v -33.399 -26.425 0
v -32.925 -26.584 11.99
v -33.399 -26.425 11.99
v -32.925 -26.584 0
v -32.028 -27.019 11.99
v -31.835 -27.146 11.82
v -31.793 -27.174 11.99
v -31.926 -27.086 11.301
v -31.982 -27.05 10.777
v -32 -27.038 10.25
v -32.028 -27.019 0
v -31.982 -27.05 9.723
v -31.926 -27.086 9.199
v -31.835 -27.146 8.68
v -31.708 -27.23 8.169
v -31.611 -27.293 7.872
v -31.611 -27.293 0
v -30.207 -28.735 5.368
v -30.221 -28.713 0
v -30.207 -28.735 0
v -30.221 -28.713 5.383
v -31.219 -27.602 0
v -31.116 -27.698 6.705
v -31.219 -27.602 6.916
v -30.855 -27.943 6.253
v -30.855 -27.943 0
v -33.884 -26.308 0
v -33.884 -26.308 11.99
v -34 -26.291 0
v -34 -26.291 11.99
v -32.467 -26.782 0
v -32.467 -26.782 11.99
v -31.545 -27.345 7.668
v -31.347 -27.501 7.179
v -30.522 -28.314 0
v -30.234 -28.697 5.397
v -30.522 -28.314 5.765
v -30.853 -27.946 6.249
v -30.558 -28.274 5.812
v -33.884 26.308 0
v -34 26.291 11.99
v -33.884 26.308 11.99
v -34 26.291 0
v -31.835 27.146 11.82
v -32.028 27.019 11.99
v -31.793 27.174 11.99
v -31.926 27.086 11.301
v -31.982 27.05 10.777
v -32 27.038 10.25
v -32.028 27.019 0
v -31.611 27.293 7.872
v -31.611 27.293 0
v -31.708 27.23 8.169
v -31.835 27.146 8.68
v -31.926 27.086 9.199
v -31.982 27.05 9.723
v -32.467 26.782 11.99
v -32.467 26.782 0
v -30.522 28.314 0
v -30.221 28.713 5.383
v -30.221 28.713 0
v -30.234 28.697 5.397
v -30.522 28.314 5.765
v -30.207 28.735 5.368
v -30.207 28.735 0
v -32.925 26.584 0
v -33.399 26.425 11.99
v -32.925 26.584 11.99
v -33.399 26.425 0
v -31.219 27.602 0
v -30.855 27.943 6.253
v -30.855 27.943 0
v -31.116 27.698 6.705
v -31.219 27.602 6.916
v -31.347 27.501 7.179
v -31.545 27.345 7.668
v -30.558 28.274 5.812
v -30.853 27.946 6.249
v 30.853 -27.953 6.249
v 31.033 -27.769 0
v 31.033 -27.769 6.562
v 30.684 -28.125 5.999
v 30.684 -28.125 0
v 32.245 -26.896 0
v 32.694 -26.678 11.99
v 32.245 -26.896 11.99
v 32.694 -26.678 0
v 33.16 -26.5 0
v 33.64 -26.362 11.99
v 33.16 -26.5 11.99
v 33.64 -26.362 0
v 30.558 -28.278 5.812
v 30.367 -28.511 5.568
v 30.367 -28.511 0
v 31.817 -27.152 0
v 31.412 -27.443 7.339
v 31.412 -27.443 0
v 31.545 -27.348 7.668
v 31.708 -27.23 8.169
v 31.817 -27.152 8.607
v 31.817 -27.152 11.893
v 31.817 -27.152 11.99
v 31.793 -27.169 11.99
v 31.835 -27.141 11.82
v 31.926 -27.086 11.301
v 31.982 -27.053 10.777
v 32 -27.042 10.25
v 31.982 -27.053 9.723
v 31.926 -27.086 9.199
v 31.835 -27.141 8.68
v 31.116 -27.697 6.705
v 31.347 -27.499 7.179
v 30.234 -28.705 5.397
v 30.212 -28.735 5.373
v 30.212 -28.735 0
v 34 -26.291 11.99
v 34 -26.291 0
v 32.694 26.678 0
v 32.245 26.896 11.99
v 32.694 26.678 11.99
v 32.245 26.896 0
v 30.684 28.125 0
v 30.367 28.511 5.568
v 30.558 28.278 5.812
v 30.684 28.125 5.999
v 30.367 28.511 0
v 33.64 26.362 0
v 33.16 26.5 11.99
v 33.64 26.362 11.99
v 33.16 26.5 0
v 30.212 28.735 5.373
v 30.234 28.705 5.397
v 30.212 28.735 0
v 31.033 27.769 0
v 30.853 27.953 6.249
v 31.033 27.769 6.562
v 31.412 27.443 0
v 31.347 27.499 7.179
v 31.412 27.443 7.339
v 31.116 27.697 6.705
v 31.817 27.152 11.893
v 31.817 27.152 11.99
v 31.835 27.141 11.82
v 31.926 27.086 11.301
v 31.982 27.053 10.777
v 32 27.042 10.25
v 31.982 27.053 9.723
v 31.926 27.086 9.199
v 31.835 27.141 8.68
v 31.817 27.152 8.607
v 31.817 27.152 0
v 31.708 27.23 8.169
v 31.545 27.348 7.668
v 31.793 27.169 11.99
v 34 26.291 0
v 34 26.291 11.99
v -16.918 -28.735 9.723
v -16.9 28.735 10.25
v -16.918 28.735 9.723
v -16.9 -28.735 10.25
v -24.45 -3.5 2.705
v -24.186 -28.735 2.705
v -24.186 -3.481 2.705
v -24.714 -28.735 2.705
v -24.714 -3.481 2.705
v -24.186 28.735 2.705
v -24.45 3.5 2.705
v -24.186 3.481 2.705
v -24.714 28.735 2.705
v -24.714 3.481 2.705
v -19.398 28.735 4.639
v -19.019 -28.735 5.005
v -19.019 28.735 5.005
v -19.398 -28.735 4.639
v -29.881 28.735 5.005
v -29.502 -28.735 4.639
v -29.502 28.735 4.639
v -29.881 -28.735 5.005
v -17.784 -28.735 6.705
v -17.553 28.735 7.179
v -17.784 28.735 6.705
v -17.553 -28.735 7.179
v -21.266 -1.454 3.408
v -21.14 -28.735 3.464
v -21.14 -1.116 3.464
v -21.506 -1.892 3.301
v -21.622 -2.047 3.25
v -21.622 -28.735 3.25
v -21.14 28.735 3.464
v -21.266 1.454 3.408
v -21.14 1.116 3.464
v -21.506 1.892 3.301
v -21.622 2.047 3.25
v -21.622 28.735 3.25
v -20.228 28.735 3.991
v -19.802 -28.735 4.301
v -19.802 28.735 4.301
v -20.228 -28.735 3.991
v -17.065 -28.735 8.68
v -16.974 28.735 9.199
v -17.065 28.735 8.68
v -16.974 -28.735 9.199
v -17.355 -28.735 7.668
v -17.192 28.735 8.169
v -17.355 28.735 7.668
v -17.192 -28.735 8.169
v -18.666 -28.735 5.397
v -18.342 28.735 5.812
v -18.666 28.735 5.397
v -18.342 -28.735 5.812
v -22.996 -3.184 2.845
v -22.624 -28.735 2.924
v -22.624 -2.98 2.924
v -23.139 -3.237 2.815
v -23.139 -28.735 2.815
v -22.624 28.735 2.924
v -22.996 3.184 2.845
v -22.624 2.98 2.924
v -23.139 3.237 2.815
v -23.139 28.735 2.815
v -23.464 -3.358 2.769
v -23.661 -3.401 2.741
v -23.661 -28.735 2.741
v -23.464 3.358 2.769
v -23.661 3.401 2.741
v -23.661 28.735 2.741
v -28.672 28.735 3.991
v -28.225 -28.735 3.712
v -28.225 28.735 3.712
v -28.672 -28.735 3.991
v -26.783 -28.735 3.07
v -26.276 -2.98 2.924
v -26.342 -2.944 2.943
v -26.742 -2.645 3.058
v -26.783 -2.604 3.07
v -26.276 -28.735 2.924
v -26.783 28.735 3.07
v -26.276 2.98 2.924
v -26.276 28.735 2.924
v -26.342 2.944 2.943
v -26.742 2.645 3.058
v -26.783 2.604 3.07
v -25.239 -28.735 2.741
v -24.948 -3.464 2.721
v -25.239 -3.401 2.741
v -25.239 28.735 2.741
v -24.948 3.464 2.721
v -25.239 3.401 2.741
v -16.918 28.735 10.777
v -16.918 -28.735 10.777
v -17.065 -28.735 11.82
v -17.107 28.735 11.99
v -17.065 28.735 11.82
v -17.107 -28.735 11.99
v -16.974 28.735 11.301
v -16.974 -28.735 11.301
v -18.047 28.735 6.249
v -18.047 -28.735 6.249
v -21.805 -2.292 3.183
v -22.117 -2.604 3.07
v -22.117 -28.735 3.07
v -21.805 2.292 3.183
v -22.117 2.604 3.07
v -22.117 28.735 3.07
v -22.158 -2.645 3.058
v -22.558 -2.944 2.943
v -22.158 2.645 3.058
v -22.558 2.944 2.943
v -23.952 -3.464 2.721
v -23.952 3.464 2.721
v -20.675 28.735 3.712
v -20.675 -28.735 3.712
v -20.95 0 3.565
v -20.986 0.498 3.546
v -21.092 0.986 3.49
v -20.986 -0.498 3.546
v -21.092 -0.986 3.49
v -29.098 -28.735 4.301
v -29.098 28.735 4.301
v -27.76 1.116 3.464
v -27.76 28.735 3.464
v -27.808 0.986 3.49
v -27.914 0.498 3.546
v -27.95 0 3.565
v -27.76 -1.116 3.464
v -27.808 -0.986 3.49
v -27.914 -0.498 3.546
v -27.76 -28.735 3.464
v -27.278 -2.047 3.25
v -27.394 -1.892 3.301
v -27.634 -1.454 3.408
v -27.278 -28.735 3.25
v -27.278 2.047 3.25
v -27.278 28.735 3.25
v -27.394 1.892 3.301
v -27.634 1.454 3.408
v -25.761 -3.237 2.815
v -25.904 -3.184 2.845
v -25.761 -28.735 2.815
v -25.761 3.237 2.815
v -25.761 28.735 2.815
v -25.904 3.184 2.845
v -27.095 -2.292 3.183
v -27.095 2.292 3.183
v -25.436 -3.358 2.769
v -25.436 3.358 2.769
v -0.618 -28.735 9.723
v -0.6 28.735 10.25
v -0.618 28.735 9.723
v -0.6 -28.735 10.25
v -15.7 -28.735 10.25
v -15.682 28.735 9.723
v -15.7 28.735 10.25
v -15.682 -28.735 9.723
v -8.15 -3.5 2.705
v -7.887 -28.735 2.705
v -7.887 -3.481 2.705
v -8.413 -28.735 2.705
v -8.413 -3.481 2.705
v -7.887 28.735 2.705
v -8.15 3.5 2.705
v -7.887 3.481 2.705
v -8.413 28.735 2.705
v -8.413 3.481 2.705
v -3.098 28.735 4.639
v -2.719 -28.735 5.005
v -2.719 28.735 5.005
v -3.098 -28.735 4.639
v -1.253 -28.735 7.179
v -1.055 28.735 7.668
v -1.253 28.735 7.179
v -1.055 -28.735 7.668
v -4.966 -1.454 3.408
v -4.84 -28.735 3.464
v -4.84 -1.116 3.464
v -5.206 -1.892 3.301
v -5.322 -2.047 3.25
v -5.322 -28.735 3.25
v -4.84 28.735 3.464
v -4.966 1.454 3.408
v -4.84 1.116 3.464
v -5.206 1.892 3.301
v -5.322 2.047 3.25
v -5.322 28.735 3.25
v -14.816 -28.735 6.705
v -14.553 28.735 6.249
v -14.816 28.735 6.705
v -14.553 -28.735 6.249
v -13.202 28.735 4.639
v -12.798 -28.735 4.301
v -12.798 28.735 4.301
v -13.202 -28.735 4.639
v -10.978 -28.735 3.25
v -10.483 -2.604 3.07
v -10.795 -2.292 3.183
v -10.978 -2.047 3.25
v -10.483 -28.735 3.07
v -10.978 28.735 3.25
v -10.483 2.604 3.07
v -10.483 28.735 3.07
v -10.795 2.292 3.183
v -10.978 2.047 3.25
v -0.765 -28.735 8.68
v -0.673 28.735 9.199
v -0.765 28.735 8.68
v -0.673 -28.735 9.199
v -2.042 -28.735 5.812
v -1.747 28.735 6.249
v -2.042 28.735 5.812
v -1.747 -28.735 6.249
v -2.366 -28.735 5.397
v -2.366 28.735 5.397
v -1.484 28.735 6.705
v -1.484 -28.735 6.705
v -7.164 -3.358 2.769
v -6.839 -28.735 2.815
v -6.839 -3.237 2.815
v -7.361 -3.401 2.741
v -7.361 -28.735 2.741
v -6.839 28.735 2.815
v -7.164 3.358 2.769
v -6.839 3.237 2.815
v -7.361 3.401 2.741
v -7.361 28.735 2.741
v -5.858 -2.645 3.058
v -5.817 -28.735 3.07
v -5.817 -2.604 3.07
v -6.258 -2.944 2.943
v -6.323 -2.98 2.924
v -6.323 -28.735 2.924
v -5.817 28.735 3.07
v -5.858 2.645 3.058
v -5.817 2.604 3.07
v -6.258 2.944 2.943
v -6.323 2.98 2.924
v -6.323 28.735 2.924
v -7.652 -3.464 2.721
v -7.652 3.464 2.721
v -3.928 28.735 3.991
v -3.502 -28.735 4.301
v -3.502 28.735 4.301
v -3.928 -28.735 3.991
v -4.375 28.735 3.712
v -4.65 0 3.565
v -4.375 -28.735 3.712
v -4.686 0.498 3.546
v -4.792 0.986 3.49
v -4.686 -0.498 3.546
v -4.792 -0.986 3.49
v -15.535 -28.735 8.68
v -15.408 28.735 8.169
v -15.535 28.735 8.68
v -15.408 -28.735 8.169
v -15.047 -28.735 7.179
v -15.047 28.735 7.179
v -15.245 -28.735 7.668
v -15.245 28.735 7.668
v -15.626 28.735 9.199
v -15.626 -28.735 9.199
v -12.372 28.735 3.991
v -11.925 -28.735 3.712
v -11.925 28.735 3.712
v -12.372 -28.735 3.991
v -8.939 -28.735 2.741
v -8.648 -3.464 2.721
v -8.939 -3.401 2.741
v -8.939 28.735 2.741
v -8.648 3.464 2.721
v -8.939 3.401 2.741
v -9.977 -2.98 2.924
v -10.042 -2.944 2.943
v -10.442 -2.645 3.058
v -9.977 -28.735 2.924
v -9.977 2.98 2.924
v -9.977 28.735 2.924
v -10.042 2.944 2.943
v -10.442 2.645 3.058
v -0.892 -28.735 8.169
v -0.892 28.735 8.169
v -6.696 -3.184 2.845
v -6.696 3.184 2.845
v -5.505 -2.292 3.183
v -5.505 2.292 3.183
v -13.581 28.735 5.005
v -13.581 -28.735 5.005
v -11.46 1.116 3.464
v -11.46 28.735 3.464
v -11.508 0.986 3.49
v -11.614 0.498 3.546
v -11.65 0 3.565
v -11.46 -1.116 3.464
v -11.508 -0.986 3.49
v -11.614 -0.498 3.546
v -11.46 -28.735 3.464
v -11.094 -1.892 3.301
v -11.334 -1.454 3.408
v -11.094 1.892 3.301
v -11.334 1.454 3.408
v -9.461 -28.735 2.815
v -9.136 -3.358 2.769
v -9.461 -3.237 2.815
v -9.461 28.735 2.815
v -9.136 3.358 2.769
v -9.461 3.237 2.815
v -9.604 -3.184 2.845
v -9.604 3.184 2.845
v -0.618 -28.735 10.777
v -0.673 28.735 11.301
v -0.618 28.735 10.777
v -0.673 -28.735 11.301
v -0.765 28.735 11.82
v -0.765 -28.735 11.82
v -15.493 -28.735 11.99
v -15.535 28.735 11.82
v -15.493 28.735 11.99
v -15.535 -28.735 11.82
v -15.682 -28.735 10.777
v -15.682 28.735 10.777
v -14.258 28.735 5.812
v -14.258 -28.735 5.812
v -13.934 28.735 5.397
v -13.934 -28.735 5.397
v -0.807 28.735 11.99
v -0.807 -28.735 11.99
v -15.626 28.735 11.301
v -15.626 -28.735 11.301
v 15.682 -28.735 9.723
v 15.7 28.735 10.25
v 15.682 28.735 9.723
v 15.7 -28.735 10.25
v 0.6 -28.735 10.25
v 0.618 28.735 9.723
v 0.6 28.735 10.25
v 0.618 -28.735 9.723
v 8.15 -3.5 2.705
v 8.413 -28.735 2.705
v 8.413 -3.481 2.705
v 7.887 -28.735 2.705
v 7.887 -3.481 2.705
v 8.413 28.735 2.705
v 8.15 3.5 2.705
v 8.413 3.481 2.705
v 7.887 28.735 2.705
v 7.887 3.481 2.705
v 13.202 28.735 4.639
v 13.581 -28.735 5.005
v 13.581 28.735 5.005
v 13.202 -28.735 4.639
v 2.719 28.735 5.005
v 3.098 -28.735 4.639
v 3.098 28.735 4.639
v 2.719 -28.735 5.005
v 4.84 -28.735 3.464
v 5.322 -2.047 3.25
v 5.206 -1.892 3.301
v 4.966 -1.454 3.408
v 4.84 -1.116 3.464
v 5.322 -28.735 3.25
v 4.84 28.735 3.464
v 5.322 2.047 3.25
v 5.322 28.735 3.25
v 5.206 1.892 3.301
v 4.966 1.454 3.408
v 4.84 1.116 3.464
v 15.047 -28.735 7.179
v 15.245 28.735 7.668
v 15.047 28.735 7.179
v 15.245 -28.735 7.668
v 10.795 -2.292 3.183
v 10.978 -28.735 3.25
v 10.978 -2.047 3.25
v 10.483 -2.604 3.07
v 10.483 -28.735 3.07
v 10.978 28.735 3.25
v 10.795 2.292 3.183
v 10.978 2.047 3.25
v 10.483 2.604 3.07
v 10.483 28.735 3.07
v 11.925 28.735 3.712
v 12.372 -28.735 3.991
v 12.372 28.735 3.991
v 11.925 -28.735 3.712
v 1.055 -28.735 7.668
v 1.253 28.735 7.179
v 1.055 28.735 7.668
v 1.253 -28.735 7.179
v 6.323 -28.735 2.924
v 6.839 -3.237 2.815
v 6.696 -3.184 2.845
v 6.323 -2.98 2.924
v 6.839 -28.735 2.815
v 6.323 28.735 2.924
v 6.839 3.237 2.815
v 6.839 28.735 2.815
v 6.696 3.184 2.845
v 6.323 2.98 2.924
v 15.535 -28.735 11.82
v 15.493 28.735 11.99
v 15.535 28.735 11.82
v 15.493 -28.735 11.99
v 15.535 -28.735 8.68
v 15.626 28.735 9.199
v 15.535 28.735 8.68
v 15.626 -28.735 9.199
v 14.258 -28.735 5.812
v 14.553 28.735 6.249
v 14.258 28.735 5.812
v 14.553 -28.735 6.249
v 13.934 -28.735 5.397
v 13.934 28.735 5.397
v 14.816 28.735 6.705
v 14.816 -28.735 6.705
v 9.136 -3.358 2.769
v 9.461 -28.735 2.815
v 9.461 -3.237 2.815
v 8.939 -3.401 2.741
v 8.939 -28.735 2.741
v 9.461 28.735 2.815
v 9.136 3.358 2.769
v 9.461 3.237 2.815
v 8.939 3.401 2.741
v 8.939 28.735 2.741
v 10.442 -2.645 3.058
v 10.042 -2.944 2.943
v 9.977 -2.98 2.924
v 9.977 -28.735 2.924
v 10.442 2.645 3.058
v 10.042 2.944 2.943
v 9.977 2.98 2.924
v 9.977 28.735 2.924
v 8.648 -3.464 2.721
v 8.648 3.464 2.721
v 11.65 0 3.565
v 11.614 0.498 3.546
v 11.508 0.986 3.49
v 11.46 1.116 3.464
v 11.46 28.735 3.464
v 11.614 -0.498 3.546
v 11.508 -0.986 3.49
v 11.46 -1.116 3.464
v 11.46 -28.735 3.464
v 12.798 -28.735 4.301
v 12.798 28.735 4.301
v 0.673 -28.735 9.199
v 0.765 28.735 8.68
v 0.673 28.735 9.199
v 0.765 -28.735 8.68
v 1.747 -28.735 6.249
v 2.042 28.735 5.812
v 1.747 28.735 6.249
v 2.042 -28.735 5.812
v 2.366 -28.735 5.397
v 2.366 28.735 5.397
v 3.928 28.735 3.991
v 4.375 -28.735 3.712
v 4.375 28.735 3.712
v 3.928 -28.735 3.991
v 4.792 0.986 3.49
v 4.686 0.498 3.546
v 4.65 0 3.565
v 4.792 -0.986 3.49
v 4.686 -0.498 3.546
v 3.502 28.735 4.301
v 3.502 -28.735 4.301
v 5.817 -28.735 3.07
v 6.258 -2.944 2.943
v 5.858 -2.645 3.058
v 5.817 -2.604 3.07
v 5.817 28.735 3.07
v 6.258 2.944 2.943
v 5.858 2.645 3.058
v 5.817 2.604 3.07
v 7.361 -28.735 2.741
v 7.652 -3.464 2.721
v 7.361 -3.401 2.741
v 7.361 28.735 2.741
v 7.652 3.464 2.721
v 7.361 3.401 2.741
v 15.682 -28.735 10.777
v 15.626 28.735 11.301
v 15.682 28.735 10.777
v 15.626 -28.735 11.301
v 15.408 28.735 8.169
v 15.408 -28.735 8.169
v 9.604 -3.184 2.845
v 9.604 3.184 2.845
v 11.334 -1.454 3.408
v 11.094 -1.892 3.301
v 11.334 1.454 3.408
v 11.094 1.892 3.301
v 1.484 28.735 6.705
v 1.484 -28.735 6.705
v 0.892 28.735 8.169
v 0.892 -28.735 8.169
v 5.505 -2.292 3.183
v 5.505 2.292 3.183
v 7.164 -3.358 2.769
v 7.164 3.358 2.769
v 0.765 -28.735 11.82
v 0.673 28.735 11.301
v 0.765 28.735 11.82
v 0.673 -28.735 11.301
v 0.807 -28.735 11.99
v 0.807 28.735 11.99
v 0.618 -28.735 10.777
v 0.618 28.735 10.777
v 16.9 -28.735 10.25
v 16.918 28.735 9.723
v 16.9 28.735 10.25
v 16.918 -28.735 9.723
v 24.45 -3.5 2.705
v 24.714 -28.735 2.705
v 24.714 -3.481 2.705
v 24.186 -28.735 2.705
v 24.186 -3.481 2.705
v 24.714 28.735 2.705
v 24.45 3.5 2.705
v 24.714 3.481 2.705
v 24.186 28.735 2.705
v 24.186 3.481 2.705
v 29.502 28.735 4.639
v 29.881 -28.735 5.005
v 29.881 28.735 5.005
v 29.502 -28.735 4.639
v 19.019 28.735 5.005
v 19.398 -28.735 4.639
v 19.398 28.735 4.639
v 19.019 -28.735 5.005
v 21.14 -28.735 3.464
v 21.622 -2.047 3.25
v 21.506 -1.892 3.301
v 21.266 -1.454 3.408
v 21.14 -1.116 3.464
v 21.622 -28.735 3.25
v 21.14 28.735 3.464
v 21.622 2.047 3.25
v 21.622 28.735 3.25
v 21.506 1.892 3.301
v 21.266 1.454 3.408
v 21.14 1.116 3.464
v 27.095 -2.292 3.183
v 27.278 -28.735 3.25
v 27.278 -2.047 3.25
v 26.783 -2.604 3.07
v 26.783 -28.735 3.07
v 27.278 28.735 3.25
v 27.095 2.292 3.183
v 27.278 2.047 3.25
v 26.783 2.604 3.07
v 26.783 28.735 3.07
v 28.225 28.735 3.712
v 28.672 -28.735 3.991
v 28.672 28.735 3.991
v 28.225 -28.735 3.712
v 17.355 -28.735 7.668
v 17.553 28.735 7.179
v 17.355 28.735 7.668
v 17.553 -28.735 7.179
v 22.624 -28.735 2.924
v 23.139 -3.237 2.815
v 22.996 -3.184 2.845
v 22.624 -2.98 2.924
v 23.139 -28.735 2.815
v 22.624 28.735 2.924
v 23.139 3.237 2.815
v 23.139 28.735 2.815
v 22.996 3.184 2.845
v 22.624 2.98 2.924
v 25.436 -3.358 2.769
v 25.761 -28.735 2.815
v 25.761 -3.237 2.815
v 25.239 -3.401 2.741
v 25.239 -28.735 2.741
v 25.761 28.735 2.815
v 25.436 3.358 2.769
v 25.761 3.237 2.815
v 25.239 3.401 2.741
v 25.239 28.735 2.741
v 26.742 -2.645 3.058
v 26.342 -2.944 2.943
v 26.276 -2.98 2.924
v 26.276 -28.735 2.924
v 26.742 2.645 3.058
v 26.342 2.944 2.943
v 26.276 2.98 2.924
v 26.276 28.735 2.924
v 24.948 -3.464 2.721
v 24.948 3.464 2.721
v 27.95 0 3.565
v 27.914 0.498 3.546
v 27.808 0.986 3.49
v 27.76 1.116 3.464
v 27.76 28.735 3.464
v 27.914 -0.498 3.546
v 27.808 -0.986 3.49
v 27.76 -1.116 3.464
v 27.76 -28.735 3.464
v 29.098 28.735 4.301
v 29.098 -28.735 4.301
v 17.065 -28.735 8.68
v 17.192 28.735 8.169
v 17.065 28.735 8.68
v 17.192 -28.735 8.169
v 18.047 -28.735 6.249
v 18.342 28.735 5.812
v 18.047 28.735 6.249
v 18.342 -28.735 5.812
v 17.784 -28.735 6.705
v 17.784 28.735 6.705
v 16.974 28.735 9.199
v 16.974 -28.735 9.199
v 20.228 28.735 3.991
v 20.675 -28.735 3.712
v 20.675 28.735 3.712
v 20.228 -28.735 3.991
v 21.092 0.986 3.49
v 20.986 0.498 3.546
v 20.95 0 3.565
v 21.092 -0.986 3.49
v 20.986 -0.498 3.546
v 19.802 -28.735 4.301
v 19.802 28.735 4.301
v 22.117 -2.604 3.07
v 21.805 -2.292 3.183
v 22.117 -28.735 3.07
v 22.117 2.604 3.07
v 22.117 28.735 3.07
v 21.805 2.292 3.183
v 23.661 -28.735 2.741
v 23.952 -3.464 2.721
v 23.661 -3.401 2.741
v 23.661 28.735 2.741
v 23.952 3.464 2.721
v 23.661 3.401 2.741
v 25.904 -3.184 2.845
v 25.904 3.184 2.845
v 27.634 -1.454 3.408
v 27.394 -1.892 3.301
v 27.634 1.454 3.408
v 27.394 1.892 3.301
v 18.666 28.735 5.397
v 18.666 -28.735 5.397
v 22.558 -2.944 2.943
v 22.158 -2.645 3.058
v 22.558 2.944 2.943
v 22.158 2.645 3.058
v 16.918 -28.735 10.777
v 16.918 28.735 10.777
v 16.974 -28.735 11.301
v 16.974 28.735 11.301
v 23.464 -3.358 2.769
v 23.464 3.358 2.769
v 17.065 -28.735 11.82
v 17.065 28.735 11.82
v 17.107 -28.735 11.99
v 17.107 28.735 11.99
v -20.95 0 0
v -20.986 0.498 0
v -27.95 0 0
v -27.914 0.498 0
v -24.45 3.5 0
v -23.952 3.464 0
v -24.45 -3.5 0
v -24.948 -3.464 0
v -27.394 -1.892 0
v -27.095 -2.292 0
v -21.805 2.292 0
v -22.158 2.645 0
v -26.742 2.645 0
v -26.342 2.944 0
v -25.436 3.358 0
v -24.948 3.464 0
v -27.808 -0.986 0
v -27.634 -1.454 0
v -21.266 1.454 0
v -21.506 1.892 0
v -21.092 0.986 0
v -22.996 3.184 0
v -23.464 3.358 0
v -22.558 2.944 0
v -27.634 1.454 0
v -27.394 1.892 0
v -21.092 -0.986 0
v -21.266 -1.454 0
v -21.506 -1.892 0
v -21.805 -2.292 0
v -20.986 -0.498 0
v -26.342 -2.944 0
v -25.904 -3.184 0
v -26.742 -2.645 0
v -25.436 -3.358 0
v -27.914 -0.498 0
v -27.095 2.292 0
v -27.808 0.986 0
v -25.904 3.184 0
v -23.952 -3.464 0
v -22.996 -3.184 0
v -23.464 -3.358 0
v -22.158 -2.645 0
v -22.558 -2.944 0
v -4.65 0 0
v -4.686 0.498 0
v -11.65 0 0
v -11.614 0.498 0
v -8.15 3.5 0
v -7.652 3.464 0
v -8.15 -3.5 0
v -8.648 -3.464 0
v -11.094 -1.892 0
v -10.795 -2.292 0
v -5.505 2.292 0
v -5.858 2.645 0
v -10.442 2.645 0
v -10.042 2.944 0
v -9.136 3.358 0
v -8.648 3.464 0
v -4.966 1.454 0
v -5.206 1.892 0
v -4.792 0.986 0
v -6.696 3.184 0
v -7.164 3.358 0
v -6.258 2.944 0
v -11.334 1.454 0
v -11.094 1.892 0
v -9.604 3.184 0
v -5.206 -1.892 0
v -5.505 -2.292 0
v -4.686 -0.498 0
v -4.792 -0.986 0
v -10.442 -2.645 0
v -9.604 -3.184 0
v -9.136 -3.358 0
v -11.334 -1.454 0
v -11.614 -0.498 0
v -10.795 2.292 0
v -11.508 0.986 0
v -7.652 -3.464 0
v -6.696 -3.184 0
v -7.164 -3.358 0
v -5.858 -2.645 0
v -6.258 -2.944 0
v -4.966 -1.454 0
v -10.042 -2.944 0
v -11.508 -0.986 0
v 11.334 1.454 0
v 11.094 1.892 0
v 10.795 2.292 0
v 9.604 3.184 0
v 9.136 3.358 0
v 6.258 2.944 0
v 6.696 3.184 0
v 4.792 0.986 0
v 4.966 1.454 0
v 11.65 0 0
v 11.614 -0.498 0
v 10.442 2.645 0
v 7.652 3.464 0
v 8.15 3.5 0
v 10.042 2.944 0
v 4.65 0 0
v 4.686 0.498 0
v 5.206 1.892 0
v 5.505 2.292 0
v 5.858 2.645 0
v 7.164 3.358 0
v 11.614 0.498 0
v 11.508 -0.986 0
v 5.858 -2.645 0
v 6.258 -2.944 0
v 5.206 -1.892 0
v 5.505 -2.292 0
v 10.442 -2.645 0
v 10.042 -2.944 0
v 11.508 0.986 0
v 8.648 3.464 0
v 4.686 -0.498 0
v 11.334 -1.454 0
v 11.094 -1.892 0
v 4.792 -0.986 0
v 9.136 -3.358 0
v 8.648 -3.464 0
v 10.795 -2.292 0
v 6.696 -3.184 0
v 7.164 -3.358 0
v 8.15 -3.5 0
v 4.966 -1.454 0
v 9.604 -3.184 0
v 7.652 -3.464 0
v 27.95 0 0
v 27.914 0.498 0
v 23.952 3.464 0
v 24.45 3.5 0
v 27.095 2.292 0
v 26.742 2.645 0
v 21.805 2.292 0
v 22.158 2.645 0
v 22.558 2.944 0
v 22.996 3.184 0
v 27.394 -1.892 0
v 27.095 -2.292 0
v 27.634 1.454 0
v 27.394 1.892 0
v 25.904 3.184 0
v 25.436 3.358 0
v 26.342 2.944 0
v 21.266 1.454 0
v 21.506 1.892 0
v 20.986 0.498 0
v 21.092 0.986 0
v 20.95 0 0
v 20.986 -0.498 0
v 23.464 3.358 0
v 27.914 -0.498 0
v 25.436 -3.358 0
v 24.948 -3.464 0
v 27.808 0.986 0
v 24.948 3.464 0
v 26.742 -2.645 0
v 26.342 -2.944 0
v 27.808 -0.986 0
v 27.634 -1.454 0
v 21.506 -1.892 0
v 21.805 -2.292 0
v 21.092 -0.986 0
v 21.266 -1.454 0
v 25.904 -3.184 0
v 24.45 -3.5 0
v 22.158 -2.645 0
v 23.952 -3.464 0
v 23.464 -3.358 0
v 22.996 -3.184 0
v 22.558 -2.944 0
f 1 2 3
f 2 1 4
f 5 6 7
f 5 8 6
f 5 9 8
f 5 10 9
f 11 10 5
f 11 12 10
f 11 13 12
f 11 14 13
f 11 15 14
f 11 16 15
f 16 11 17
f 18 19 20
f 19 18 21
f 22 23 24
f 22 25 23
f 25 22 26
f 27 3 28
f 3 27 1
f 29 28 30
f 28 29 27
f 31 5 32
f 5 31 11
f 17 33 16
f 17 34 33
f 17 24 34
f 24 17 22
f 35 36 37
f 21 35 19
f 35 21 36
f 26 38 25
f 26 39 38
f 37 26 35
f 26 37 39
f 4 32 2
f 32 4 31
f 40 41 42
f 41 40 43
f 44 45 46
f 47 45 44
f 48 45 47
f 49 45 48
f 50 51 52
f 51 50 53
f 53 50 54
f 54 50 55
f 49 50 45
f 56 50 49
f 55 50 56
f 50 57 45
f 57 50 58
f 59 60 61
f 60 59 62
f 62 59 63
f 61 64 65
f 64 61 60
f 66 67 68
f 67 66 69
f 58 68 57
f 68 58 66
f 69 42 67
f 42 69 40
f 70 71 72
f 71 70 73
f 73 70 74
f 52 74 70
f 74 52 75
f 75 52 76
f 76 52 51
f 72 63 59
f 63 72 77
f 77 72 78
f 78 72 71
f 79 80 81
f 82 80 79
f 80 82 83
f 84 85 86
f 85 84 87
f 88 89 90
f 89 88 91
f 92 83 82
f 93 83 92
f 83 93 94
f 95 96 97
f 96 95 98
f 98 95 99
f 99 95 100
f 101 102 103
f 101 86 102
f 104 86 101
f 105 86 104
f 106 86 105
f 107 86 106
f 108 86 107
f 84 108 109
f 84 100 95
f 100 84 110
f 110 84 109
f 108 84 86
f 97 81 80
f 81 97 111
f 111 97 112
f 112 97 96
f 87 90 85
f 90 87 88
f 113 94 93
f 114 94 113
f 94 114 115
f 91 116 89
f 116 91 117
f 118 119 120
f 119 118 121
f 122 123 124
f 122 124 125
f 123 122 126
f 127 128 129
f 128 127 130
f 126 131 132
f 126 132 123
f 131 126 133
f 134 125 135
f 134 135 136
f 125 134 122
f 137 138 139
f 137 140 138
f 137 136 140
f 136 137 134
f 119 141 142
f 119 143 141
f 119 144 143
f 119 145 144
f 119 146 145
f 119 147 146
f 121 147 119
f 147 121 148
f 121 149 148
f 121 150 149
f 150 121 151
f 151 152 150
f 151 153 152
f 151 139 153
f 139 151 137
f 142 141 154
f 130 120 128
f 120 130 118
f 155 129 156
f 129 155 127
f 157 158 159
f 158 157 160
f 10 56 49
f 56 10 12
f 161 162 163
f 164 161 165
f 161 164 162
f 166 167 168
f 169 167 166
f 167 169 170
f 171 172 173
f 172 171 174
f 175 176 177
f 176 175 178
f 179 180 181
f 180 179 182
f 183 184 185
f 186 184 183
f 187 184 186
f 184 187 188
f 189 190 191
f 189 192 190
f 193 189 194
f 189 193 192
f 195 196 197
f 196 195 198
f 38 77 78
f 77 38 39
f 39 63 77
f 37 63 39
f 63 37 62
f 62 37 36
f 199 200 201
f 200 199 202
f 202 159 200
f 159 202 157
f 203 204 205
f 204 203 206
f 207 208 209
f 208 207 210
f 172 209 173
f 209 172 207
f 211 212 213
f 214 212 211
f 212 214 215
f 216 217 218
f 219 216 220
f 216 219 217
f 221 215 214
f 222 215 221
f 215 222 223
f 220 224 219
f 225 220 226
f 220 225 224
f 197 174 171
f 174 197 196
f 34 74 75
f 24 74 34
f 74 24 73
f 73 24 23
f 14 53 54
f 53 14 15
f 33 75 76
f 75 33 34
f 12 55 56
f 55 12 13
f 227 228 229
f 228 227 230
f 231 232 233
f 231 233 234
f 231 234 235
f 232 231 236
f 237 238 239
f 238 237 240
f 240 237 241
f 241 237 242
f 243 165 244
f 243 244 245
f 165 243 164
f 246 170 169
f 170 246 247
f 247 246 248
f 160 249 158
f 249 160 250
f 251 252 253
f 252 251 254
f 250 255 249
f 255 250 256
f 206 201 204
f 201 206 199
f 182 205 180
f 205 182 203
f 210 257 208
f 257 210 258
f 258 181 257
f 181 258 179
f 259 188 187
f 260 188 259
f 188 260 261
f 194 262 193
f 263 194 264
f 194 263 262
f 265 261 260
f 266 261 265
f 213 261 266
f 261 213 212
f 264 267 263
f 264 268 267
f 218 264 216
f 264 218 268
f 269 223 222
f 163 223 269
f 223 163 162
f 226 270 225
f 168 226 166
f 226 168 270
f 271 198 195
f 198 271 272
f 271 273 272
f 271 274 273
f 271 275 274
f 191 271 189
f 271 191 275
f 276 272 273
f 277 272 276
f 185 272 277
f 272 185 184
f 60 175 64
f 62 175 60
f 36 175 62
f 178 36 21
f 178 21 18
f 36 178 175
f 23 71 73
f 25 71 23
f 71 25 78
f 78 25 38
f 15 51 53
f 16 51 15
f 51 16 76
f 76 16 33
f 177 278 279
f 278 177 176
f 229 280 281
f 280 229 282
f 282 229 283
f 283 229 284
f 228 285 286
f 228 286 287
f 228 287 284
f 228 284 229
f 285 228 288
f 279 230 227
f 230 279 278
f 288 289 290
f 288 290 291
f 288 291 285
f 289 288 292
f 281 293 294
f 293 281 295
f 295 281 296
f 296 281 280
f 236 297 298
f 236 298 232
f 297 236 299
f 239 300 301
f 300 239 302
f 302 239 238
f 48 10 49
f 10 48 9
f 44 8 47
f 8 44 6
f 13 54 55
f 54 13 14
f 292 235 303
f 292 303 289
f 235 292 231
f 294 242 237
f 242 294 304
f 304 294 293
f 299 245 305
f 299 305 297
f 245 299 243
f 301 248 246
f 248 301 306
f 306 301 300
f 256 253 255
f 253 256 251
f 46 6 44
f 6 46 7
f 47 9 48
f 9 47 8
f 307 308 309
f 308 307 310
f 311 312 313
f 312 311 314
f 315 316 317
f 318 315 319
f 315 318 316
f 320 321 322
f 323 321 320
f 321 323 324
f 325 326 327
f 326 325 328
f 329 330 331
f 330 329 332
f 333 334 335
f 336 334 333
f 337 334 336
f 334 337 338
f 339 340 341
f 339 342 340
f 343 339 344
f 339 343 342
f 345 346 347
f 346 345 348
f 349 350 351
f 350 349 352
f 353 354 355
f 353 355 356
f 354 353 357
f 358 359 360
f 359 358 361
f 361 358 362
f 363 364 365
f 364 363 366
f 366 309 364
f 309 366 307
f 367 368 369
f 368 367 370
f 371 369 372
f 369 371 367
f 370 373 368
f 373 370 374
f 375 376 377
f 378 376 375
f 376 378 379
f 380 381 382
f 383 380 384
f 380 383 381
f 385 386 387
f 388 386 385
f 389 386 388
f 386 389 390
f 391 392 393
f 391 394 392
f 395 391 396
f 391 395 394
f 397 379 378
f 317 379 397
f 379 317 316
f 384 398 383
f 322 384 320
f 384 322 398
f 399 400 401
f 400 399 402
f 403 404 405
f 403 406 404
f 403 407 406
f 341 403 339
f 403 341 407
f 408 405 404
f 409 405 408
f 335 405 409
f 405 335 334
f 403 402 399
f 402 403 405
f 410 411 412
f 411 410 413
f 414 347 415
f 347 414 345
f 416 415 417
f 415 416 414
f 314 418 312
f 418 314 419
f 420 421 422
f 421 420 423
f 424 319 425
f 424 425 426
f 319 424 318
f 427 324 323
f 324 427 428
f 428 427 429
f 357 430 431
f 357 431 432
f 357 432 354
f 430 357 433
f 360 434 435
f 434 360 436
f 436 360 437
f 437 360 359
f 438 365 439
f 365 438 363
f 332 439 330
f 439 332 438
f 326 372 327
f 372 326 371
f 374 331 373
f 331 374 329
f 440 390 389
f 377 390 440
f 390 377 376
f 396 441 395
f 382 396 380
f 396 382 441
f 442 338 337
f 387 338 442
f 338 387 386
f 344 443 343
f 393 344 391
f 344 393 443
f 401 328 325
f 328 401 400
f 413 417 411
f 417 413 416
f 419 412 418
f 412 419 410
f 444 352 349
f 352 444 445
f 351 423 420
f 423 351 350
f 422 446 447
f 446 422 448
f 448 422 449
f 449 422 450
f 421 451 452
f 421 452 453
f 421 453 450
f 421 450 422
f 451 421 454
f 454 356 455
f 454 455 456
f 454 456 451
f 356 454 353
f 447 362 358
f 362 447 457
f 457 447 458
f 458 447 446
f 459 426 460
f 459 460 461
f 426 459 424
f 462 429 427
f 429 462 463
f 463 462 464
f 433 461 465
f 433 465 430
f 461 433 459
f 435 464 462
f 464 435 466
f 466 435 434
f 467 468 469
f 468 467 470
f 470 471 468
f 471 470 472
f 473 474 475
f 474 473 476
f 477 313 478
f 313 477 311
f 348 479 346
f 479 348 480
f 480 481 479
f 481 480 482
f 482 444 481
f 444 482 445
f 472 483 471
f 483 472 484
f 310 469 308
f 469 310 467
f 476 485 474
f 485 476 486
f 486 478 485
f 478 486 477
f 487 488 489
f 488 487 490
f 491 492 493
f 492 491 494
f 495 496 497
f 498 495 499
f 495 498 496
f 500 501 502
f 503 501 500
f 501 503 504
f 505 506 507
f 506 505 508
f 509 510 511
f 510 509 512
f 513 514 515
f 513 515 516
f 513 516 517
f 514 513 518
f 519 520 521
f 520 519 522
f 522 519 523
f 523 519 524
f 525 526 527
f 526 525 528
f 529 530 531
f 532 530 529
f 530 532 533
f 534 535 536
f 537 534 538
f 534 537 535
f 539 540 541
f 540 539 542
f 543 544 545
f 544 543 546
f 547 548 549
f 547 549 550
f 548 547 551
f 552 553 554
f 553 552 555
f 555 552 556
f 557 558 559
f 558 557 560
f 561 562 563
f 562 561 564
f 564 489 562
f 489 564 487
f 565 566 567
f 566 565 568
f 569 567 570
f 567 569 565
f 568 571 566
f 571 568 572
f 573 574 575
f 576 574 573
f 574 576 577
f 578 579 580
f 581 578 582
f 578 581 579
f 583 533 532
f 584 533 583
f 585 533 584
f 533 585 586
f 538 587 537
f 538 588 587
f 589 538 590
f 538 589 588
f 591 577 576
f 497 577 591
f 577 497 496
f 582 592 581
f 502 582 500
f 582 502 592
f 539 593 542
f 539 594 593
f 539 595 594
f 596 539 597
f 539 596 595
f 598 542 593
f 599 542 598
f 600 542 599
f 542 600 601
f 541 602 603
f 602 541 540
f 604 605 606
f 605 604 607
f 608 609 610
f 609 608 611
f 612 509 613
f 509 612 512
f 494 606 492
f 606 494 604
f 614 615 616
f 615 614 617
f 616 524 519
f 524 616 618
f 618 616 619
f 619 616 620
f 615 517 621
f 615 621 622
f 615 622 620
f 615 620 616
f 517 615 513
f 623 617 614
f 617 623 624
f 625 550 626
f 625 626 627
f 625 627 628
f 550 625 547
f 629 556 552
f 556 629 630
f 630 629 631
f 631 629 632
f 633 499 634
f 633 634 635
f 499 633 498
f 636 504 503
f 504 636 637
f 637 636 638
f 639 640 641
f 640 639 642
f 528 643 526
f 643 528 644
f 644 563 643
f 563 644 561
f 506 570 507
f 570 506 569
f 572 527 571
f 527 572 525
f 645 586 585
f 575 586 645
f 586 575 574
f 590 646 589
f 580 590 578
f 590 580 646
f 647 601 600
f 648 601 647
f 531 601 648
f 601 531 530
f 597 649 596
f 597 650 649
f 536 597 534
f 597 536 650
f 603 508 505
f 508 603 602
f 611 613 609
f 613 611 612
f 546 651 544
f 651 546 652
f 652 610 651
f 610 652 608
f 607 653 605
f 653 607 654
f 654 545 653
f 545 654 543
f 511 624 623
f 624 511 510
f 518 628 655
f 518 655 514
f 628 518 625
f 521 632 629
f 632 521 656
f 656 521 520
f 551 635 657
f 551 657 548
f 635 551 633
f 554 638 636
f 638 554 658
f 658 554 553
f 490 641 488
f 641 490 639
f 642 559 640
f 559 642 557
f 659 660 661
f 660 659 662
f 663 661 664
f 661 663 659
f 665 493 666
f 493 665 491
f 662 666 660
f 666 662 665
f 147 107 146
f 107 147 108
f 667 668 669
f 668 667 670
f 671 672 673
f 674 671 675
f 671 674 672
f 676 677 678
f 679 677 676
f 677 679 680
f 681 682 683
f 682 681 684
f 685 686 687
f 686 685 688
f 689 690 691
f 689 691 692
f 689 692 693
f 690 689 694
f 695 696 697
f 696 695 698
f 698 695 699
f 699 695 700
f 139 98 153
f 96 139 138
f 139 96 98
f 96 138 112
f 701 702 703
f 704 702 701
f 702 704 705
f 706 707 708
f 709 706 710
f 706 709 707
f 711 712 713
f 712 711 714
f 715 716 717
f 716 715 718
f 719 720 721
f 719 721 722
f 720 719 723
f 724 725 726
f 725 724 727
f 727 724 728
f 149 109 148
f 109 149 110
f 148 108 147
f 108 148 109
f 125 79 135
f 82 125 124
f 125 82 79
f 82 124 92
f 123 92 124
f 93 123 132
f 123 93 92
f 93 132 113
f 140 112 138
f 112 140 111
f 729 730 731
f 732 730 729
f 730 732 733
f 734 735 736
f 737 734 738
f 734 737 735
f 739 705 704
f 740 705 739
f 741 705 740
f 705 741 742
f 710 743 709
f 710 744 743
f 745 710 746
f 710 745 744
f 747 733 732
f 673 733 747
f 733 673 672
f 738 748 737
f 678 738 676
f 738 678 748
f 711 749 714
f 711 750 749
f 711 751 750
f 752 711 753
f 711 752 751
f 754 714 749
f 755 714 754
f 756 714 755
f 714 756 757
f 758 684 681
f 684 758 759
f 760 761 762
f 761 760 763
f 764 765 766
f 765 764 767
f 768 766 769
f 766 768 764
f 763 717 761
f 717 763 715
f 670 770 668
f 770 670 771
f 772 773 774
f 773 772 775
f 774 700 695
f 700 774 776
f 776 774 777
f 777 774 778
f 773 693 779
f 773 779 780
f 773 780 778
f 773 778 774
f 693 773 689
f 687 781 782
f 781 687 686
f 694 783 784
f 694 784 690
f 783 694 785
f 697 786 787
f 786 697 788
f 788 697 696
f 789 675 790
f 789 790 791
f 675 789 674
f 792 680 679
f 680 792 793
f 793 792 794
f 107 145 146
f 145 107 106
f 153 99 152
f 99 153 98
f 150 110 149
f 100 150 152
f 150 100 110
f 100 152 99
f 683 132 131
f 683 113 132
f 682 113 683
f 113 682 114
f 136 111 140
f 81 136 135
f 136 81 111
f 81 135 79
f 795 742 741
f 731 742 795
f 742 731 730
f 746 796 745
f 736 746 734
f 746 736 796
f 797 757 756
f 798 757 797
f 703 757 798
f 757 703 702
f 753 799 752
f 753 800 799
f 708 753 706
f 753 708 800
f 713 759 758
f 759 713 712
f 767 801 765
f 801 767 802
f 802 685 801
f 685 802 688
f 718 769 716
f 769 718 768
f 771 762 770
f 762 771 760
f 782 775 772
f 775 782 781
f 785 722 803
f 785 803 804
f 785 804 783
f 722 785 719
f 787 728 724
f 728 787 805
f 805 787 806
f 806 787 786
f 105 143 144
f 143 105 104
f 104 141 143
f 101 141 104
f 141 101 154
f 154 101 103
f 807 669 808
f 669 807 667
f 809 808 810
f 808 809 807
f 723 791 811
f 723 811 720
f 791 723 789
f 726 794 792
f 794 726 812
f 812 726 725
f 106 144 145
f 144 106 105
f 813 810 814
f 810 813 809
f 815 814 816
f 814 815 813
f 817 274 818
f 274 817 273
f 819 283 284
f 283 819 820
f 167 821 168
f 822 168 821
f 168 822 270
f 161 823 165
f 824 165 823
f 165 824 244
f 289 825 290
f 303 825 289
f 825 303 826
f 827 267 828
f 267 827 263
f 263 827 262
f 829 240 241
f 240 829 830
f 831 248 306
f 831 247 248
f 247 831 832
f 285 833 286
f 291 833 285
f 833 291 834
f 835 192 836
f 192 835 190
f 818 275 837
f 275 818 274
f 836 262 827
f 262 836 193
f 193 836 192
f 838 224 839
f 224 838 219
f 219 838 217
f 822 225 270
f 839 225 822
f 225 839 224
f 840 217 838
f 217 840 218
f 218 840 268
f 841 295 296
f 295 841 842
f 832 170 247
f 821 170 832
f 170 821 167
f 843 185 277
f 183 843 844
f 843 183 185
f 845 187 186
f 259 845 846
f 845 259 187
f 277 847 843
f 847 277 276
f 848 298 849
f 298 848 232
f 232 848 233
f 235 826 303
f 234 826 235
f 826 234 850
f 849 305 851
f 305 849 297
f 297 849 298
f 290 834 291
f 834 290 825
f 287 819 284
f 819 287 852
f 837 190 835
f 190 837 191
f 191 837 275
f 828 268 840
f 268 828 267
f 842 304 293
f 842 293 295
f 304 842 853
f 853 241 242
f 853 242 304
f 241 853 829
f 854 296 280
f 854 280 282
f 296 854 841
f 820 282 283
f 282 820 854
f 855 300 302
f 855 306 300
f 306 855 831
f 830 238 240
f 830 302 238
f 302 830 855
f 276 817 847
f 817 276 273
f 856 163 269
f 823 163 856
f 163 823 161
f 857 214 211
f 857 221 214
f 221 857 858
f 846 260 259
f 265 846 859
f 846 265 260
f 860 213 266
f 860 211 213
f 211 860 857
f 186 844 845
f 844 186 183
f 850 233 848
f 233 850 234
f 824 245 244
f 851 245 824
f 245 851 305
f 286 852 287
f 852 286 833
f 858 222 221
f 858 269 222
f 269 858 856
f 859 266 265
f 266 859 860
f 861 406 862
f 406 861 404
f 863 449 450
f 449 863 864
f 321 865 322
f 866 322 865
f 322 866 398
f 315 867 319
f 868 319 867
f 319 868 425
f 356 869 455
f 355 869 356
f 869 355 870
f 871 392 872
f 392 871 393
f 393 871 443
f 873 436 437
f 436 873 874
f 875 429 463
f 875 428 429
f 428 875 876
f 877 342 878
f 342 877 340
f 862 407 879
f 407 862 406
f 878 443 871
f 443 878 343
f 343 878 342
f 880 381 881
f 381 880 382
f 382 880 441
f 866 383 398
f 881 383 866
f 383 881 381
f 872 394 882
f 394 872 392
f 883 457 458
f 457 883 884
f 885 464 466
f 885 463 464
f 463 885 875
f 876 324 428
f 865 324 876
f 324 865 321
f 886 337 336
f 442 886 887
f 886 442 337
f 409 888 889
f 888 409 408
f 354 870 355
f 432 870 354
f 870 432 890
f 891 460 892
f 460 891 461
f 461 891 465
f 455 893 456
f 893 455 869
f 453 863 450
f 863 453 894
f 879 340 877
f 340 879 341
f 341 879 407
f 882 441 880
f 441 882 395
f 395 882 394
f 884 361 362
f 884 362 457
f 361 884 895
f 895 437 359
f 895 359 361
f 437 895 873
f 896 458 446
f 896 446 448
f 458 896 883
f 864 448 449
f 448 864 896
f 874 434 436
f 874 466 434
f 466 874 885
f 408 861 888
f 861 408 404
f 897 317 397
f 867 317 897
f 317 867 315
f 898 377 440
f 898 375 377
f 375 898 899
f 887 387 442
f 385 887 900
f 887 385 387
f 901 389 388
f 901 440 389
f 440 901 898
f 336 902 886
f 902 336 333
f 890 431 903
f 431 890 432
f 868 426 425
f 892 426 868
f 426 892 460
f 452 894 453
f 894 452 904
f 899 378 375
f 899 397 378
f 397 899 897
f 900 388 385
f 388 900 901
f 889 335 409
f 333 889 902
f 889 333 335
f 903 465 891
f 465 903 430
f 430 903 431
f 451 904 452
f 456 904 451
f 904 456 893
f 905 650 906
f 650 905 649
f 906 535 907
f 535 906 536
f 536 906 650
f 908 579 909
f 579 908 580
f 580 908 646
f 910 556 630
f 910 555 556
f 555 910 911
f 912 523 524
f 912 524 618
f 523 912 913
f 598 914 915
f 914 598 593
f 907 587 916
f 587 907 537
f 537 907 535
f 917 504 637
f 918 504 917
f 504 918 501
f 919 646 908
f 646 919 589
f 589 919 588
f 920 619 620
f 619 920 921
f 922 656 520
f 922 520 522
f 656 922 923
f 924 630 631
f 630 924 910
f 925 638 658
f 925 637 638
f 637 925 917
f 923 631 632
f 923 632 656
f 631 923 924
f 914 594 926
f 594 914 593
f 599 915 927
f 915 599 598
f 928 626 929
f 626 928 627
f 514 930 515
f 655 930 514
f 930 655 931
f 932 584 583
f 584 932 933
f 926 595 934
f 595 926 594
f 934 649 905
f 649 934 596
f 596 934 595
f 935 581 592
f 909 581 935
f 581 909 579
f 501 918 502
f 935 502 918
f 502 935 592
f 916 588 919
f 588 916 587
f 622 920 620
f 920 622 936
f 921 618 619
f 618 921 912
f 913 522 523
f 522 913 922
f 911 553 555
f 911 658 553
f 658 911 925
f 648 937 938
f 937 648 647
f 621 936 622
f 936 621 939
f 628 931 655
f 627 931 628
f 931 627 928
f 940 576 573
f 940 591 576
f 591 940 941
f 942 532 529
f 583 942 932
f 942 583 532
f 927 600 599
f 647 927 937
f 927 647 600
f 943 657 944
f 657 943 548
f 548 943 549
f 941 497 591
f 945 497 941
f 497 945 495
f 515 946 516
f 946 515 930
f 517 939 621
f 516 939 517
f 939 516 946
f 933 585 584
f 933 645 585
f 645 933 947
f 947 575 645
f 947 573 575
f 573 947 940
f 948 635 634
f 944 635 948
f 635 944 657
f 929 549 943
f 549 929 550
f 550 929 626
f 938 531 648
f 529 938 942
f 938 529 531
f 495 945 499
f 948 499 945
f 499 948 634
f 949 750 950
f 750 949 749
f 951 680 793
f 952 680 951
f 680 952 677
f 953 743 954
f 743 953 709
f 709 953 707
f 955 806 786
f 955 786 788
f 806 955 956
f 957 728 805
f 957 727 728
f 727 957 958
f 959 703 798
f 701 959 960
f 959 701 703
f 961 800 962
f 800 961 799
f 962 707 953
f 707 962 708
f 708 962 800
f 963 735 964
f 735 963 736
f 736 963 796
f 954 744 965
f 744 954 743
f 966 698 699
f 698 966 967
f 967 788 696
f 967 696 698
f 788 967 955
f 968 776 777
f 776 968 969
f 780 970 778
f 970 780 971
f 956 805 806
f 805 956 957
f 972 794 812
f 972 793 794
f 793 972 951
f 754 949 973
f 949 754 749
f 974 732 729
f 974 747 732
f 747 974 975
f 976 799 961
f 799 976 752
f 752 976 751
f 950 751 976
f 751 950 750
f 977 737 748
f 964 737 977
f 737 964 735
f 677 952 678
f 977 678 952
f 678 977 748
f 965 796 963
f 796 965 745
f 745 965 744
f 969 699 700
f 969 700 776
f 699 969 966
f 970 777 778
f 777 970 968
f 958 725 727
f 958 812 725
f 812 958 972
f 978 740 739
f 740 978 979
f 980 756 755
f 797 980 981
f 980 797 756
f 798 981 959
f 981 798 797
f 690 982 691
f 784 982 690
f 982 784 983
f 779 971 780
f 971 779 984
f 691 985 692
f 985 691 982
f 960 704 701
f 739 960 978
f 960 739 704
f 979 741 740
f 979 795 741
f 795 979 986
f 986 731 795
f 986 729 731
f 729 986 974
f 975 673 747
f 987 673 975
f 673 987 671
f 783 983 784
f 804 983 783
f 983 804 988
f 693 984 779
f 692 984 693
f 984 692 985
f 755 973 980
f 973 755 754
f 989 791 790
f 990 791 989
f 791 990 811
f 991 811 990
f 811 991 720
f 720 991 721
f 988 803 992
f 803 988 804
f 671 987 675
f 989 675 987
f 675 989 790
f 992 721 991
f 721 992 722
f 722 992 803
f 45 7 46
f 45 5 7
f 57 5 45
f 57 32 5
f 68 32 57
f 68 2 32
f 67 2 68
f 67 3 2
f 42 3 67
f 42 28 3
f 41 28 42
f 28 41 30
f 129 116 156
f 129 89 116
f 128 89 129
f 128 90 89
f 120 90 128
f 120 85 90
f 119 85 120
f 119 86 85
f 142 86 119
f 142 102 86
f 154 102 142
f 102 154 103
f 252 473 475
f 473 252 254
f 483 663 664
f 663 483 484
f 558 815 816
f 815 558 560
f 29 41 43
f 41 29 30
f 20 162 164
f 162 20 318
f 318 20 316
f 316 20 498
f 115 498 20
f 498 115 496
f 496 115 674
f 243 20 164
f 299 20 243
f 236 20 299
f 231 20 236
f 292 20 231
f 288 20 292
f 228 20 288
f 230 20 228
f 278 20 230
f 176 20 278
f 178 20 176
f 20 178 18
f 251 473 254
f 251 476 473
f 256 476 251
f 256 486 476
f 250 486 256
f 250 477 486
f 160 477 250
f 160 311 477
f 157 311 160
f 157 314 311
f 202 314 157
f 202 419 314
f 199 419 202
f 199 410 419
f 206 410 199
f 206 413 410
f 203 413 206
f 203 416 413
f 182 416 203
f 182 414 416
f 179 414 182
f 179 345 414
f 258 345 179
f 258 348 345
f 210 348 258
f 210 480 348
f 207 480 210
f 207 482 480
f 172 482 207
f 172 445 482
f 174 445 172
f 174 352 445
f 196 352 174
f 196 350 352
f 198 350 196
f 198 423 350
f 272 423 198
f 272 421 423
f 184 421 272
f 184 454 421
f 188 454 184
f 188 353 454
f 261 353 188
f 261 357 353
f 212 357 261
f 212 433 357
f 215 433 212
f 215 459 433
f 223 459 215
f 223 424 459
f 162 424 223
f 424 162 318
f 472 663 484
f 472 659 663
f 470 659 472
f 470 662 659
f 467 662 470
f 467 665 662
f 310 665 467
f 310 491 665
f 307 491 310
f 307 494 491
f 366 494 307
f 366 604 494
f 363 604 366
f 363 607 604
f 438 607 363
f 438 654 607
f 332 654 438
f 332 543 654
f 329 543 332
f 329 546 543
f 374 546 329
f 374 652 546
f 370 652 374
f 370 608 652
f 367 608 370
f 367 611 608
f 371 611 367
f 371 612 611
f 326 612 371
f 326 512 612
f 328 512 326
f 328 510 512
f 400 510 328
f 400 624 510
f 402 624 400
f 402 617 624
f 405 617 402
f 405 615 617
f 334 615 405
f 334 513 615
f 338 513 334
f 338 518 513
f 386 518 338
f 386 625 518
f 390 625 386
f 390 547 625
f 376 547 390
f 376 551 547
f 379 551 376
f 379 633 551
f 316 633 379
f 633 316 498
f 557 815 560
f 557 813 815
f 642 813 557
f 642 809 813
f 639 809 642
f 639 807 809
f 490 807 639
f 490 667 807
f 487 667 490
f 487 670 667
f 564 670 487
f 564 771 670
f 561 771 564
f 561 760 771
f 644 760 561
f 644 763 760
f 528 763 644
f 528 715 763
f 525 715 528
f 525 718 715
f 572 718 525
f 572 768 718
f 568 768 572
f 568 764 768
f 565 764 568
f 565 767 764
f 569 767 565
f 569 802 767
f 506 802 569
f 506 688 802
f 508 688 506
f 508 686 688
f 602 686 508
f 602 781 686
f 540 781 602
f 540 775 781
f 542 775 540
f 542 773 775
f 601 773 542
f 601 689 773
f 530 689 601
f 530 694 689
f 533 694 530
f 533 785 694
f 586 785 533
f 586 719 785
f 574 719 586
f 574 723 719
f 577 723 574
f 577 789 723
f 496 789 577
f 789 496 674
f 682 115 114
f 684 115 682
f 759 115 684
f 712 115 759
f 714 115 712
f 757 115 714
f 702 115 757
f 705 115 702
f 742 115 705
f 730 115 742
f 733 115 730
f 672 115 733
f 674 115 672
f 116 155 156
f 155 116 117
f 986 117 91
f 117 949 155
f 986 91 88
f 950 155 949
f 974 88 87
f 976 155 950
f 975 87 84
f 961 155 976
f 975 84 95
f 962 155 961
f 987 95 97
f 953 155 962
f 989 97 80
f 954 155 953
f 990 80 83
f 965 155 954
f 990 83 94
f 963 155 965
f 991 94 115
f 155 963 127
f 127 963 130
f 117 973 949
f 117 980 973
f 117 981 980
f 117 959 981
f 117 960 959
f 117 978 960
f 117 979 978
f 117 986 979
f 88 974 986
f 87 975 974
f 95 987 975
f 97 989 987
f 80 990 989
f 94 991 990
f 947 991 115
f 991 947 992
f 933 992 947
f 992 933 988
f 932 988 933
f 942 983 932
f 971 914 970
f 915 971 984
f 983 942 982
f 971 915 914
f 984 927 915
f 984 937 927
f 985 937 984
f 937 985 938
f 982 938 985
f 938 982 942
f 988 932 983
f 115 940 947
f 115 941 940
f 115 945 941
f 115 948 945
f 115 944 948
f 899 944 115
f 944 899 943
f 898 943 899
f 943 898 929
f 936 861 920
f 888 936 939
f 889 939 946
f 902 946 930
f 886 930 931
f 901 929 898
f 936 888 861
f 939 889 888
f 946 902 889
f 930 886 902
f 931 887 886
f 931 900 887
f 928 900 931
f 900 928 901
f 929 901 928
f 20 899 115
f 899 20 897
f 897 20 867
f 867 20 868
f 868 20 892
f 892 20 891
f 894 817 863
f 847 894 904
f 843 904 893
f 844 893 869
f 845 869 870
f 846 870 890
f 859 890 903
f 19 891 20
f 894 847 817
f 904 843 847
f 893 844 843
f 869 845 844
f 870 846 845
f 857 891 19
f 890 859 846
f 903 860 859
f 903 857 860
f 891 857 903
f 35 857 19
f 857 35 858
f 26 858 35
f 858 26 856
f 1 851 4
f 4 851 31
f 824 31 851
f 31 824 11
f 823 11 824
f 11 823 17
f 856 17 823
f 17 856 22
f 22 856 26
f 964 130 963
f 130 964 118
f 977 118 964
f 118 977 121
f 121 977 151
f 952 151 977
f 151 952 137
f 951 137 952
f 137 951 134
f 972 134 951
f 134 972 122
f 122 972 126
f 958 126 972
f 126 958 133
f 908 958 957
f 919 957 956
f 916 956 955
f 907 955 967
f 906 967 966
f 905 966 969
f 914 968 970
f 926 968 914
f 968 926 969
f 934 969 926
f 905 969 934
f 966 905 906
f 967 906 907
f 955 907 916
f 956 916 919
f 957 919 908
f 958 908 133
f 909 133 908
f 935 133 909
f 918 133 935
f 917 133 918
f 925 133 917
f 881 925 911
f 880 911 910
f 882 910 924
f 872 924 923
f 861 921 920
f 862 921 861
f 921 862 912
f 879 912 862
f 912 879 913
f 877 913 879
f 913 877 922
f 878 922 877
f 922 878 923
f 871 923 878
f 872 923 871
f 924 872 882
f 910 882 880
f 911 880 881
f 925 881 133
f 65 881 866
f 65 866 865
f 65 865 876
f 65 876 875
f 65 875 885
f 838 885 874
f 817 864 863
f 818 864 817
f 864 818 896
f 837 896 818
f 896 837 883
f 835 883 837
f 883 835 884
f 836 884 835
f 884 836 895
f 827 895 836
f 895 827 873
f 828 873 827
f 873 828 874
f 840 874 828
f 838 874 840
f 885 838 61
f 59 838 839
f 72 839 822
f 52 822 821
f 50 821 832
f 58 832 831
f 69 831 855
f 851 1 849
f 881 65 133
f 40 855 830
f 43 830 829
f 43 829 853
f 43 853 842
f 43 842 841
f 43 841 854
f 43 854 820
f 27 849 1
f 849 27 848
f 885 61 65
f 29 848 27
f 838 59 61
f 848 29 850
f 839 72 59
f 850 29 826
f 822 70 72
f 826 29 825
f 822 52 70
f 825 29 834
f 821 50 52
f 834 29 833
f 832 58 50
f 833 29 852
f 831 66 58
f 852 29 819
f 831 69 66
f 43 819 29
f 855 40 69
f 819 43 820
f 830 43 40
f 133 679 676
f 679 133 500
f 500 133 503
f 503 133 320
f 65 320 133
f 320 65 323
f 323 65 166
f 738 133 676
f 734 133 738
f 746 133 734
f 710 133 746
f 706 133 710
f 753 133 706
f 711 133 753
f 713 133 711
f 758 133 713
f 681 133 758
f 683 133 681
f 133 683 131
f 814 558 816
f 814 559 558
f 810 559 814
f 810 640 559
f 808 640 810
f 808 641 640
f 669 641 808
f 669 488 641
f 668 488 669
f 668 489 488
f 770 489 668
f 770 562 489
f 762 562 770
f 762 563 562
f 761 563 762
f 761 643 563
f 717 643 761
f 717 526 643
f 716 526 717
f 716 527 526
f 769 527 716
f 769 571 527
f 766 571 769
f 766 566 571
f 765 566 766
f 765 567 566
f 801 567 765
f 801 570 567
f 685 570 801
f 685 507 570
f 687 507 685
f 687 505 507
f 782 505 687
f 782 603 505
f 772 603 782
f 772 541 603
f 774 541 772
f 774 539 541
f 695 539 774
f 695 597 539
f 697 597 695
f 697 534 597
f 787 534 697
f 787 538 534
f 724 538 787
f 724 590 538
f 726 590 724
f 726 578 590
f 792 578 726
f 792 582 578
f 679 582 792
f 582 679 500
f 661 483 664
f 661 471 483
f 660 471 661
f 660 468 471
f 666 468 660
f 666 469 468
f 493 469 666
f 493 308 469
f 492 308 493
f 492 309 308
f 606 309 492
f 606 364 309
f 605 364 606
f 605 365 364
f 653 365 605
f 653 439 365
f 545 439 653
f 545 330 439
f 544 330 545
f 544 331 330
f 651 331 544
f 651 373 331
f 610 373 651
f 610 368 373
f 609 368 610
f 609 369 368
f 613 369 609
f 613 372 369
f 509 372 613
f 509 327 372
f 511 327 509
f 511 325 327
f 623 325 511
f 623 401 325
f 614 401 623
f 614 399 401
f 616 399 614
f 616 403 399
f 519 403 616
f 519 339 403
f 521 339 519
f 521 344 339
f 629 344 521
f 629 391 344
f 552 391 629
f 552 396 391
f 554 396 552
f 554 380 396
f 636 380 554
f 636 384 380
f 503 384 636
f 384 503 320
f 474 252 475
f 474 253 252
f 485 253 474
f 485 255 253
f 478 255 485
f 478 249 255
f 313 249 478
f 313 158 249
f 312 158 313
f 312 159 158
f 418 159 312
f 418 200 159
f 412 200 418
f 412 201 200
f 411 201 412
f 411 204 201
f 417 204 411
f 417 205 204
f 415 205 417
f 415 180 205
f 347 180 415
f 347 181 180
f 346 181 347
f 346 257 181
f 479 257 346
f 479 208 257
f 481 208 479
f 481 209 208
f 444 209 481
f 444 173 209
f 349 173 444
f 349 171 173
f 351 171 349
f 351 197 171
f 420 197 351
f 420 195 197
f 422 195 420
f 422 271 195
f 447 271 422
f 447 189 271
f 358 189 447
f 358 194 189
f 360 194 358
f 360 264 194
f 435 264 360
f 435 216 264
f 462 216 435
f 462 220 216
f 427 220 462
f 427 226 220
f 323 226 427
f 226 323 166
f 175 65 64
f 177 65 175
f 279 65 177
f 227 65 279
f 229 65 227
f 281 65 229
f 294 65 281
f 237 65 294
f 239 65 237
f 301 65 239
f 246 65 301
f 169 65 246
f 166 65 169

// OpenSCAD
// file: ../parametros.scad
// ============================================================
// parametros.scad — dimensões compartilhadas do robô
// Todas as medidas em milímetros.
// ============================================================

$fa = 4;
$fs = 0.5;

// ---------- tolerância de impressão ----------
folga = 0.3;        // folga padrão em furos/encaixes

// ---------- roda ----------
roda_d   = 36;      // diâmetro da roda
roda_w   = 10;      // largura da roda
eixo_d   = 4;       // diâmetro do eixo (haste impressa ou M4)
eixo_l   = 112;     // comprimento do eixo (haste + chanfro)

// ---------- base (chassi) ----------
base_w  = 84;       // largura (X)
base_d  = 74;       // profundidade (Y)
base_h  = 40;       // altura
parede  = 2.4;      // espessura das paredes (todas as peças)
eixo_z  = 12;       // altura do centro do eixo medida do fundo do chassi
roda_y  = roda_d/2 + 3;       // distância do centro do chassi ao centro de cada roda (Y)

// ---------- compartimento das pilhas ----------
// baia dimensionada para suporte comercial 4xAA (~62 x 58 x 17)
// ou para o suporte impresso em suporte_pilhas.scad
aa_bay_w = 72;
aa_bay_d = 58;
aa_dia   = 14.5;    // diâmetro da pilha AA
aa_comp  = 50.5;    // comprimento da pilha AA
suporte_z = eixo_z + 6 + 2*folga;
roda_x = base_w/2 + 2*folga + roda_w/2;
eixo_x = -roda_x - roda_w/2 - folga;

assert(2*roda_y >= roda_d + 2, "Rodas sem folga longitudinal");
assert(roda_y + 6 <= base_d/2, "Buchas fora do chassi");
assert(suporte_z + max(3 + aa_dia, 17) + folga <= base_h,
       "Pilhas acima do topo do chassi");
assert(eixo_z - eixo_d/2 - folga >= parede, "Eixo invade o fundo do chassi");
assert(eixo_x + eixo_l - 4 >= roda_x + roda_w/2 + folga + 2,
       "Eixo curto para as rodas e a trava");

// ---------- corpo (torso) ----------
// mesma pegada do chassi: as paredes alinham e as colunas de
// fixação ficam uma sobre a outra
corpo_w = 84;
corpo_d = 74;
corpo_h = 62;

// posição das colunas de fixação torso↔base (parafuso M3)
mont_x = 35;
mont_y = 32;

// ---------- micro:bit ----------
mb_w    = 51.6;     // largura da placa
mb_h    = 42;       // altura da placa
mb_prof = 11;       // profundidade do bolso (placa + componentes + fios)

// ---------- botões ----------
botao_d   = 12.4;   // botão de painel de 12 mm
botao_sep = 26;     // distância entre centros dos botões

// ---------- cabeça ----------
cab_w   = 58;
cab_d   = 50;
cab_h   = 48;
led_tam = 33;       // janela p/ matriz LED 8x8 (~32 mm) ou OLED pequeno
led_prof = 8;       // profundidade do alojamento do display

// ---------- braço ----------
braco_furo = 4.4;   // furo da articulação (parafuso M4 ou pino impresso)
braco_e    = 7;     // espessura dos segmentos do braço
brac_a     = 16;    // distância entre furos do segmento superior
brac_b     = 16;    // comprimento do antebraço até a palma
brac_r     = 7;     // raio das extremidades arredondadas

// ---------- auxiliar: caixa com cantos arredondados ----------
// caixa de w x d x h, centrada em X/Y, base em z = 0
module rbox(w, d, h, r = 3) {
    hull()
        for (x = [-1, 1], y = [-1, 1])
            translate([x * (w/2 - r), y * (d/2 - r), 0])
                cylinder(r = r, h = h);
}
// main file
// ============================================================
// suporte_pilhas.scad — berço impresso para 4 pilhas AA em linha
// Alternativa ao suporte comercial 4xAA (~62 x 58): as pilhas
// encaixam por cima (efeito mola) e saem empurrando pelos rasgos
// inferiores.
// ATENÇÃO: o berço não tem contatos elétricos — use molas/
// rebites de contato ou prefira um suporte comercial 4xAA.
// Imprimir na orientação do modelo.
// ============================================================

include <../parametros.scad>

canal_d = aa_dia + 2*folga;            // diâmetro do canal
sep     = canal_d + 1.2;               // distância entre canais (parede 1,2)
cr_w    = 4 * canal_d + 3 * 1.2 + 2 * 2;   // ~68 mm, cabe na baia de 72
cr_d    = aa_comp + 7;                 // comprimento
cr_h    = 3 + aa_dia * 0.62;           // fundo + ~2/3 do diâmetro

module suporte_pilhas() {
    xs = [-1.5*sep, -0.5*sep, 0.5*sep, 1.5*sep];
    difference() {
        rbox(cr_w, cr_d, cr_h, 2);

        for (x = [-1, 1], y = [-1, 1])
            translate([x * mont_x, y * mont_y, -0.1])
                cylinder(d = 11 + 2*folga, h = cr_h + 0.2);

        // canais das pilhas (abertos no topo — efeito mola)
        for (x = xs)
            translate([x, 0, 3 + aa_dia/2])
                rotate([-90, 0, 0])
                    cylinder(d = canal_d, h = cr_d + 2,
                             center = true);

        // rasgos para retirar as pilhas empurrando por baixo
        for (x = xs)
            translate([x, 0, -0.1])
                cylinder(d = 7, h = 30);
    }
}

suporte_pilhas();
